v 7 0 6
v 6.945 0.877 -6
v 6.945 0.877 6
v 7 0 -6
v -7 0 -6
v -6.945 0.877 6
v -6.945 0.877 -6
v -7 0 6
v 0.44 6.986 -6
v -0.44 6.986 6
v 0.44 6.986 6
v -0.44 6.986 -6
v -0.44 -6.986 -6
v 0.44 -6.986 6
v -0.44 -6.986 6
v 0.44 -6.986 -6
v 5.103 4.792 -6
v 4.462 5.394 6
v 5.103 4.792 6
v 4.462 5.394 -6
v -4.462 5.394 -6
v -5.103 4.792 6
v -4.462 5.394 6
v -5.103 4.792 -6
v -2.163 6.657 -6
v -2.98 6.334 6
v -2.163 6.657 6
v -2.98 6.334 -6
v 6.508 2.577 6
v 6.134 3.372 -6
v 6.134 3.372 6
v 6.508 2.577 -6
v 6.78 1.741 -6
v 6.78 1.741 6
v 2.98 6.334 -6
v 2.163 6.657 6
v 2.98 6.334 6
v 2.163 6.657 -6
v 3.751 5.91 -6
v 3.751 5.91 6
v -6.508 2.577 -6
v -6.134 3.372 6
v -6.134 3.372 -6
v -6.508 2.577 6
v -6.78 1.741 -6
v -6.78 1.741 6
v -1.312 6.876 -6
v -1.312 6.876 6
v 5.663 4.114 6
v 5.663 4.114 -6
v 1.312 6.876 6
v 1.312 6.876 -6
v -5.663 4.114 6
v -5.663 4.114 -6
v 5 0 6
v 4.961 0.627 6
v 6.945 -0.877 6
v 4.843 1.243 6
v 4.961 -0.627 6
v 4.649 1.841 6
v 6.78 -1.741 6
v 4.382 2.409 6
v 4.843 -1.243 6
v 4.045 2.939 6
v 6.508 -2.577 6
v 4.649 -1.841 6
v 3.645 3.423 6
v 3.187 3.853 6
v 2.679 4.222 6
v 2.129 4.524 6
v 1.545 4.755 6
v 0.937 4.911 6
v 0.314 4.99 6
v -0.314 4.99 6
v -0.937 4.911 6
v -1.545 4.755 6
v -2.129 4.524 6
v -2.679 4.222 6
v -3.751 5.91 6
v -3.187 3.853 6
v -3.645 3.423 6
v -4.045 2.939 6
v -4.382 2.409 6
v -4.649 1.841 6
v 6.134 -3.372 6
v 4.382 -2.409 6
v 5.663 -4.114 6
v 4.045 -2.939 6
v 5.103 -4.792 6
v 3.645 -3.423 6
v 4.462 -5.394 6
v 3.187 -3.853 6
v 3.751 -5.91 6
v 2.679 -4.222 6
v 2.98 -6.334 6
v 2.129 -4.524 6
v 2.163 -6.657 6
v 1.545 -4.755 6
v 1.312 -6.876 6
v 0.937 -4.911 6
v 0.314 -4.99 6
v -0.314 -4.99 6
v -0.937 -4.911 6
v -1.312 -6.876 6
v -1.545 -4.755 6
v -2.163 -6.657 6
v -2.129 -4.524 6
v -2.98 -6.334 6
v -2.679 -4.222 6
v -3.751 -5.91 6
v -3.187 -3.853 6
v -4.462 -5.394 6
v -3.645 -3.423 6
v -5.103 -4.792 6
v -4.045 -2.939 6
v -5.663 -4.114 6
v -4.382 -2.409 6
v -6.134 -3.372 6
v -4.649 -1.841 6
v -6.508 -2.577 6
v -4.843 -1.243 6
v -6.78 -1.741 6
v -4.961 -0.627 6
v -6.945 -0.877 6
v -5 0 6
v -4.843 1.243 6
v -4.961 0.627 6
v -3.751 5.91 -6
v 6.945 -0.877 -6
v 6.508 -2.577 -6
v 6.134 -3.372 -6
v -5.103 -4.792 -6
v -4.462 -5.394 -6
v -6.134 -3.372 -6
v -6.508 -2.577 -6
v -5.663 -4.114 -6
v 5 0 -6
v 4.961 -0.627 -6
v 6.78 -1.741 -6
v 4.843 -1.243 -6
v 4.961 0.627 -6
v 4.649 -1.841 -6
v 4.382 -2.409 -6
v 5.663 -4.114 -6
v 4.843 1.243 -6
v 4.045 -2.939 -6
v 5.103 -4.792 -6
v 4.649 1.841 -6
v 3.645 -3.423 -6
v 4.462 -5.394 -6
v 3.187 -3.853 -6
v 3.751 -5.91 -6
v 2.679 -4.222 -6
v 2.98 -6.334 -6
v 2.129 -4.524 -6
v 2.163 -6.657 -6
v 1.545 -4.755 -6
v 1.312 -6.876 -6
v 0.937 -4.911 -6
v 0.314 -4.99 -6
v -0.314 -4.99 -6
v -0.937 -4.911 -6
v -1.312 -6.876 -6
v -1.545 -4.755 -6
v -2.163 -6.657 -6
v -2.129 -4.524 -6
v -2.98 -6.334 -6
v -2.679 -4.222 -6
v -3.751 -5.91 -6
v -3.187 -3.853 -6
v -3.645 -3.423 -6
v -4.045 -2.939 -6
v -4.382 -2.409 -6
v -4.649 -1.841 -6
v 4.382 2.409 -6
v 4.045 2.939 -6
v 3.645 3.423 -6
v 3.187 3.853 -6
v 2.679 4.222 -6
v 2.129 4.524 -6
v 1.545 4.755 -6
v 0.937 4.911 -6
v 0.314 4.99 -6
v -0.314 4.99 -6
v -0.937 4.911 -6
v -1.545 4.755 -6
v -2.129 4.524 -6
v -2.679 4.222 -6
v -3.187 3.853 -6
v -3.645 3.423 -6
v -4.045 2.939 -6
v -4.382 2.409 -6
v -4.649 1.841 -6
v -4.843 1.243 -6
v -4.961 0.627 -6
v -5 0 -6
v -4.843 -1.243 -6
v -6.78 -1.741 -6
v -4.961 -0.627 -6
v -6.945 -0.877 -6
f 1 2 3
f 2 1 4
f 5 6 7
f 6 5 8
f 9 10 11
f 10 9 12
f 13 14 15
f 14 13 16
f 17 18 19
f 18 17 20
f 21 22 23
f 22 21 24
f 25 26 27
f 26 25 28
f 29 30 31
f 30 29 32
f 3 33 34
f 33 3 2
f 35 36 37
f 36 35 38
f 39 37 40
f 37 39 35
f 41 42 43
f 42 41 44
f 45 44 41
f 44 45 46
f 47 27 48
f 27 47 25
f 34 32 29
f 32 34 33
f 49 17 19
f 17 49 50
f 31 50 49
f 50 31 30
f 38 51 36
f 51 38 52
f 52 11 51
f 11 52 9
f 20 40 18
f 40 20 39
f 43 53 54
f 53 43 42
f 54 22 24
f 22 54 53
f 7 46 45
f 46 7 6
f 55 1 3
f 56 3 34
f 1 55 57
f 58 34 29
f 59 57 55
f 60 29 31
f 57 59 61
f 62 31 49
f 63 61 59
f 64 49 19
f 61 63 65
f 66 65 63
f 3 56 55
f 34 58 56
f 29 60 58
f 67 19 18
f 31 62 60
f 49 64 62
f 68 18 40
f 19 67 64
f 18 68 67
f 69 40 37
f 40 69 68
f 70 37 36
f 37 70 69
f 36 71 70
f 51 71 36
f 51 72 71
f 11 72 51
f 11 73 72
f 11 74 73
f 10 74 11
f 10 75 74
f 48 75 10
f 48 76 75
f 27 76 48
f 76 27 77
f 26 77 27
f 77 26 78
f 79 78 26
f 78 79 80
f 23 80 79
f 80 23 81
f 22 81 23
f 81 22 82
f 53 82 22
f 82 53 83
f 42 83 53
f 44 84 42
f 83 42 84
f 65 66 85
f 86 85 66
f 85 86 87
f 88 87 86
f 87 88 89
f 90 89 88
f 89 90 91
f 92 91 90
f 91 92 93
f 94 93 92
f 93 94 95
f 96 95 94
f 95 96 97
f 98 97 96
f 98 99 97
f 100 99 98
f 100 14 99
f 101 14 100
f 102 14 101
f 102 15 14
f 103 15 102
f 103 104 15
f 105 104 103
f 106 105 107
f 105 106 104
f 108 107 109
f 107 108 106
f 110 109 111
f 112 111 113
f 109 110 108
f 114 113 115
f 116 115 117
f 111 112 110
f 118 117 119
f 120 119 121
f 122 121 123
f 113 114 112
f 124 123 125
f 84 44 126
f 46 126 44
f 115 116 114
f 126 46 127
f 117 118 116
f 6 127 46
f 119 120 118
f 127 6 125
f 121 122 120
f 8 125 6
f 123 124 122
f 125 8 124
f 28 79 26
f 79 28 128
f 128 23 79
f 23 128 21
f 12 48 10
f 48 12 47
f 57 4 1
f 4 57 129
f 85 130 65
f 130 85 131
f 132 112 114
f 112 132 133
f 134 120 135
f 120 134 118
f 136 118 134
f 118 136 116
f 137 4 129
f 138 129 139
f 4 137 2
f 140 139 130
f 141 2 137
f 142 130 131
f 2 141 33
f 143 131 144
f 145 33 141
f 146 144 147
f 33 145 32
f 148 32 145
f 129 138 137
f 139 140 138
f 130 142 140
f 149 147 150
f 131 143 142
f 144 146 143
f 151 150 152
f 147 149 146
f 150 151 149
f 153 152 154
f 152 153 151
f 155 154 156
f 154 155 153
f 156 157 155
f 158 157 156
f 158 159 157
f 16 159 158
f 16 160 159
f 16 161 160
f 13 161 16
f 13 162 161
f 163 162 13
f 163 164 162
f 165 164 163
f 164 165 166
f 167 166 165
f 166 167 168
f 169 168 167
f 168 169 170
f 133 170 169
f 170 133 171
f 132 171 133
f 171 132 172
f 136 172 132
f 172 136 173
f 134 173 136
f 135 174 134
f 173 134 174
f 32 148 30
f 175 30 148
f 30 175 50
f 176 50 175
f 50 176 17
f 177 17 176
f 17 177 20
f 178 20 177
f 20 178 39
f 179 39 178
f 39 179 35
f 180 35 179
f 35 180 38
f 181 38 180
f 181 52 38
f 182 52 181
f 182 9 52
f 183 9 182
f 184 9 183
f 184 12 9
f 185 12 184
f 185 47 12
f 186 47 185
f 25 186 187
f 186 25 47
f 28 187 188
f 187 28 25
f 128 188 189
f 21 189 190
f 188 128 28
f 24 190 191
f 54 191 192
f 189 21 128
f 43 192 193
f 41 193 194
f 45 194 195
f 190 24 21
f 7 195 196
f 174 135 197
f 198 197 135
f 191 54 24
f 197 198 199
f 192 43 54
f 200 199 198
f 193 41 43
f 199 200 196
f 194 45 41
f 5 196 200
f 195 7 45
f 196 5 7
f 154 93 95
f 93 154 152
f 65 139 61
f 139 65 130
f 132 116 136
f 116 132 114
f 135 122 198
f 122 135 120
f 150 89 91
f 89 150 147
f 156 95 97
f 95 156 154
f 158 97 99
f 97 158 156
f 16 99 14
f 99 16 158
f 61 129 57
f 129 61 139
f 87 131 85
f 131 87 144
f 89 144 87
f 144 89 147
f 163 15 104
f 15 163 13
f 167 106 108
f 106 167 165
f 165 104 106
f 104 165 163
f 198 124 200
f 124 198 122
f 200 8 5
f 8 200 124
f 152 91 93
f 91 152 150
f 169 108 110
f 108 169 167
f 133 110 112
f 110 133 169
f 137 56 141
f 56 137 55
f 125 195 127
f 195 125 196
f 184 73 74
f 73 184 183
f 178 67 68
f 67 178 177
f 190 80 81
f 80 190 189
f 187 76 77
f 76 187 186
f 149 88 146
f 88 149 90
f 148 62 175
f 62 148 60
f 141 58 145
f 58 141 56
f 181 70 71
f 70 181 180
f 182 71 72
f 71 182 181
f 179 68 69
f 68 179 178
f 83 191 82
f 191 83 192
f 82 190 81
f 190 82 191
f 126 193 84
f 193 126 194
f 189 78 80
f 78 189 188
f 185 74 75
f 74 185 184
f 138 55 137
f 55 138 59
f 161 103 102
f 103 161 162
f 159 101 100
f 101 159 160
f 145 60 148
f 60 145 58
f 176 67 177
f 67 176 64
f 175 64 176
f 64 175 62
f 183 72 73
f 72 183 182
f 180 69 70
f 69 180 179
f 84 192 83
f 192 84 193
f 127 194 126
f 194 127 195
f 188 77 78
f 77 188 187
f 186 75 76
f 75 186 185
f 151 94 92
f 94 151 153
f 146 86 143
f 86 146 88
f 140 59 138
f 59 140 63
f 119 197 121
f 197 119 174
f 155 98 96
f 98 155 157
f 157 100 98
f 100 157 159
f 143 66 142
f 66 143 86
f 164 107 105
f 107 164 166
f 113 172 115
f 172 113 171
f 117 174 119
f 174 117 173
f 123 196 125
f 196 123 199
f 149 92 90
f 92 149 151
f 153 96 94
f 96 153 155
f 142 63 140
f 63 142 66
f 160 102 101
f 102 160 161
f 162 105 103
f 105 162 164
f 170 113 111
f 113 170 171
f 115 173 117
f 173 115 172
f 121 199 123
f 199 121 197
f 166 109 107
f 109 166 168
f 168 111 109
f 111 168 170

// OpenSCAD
$fn = 50;


difference() {
	union() {
		translate(v = [0, 0, -6.0000000000]) {
			cylinder(h = 12, r = 7.0000000000);
		}
	}
	union() {
		translate(v = [0, 0, -100.0000000000]) {
			cylinder(h = 200, r = 5);
		}
	}
}
